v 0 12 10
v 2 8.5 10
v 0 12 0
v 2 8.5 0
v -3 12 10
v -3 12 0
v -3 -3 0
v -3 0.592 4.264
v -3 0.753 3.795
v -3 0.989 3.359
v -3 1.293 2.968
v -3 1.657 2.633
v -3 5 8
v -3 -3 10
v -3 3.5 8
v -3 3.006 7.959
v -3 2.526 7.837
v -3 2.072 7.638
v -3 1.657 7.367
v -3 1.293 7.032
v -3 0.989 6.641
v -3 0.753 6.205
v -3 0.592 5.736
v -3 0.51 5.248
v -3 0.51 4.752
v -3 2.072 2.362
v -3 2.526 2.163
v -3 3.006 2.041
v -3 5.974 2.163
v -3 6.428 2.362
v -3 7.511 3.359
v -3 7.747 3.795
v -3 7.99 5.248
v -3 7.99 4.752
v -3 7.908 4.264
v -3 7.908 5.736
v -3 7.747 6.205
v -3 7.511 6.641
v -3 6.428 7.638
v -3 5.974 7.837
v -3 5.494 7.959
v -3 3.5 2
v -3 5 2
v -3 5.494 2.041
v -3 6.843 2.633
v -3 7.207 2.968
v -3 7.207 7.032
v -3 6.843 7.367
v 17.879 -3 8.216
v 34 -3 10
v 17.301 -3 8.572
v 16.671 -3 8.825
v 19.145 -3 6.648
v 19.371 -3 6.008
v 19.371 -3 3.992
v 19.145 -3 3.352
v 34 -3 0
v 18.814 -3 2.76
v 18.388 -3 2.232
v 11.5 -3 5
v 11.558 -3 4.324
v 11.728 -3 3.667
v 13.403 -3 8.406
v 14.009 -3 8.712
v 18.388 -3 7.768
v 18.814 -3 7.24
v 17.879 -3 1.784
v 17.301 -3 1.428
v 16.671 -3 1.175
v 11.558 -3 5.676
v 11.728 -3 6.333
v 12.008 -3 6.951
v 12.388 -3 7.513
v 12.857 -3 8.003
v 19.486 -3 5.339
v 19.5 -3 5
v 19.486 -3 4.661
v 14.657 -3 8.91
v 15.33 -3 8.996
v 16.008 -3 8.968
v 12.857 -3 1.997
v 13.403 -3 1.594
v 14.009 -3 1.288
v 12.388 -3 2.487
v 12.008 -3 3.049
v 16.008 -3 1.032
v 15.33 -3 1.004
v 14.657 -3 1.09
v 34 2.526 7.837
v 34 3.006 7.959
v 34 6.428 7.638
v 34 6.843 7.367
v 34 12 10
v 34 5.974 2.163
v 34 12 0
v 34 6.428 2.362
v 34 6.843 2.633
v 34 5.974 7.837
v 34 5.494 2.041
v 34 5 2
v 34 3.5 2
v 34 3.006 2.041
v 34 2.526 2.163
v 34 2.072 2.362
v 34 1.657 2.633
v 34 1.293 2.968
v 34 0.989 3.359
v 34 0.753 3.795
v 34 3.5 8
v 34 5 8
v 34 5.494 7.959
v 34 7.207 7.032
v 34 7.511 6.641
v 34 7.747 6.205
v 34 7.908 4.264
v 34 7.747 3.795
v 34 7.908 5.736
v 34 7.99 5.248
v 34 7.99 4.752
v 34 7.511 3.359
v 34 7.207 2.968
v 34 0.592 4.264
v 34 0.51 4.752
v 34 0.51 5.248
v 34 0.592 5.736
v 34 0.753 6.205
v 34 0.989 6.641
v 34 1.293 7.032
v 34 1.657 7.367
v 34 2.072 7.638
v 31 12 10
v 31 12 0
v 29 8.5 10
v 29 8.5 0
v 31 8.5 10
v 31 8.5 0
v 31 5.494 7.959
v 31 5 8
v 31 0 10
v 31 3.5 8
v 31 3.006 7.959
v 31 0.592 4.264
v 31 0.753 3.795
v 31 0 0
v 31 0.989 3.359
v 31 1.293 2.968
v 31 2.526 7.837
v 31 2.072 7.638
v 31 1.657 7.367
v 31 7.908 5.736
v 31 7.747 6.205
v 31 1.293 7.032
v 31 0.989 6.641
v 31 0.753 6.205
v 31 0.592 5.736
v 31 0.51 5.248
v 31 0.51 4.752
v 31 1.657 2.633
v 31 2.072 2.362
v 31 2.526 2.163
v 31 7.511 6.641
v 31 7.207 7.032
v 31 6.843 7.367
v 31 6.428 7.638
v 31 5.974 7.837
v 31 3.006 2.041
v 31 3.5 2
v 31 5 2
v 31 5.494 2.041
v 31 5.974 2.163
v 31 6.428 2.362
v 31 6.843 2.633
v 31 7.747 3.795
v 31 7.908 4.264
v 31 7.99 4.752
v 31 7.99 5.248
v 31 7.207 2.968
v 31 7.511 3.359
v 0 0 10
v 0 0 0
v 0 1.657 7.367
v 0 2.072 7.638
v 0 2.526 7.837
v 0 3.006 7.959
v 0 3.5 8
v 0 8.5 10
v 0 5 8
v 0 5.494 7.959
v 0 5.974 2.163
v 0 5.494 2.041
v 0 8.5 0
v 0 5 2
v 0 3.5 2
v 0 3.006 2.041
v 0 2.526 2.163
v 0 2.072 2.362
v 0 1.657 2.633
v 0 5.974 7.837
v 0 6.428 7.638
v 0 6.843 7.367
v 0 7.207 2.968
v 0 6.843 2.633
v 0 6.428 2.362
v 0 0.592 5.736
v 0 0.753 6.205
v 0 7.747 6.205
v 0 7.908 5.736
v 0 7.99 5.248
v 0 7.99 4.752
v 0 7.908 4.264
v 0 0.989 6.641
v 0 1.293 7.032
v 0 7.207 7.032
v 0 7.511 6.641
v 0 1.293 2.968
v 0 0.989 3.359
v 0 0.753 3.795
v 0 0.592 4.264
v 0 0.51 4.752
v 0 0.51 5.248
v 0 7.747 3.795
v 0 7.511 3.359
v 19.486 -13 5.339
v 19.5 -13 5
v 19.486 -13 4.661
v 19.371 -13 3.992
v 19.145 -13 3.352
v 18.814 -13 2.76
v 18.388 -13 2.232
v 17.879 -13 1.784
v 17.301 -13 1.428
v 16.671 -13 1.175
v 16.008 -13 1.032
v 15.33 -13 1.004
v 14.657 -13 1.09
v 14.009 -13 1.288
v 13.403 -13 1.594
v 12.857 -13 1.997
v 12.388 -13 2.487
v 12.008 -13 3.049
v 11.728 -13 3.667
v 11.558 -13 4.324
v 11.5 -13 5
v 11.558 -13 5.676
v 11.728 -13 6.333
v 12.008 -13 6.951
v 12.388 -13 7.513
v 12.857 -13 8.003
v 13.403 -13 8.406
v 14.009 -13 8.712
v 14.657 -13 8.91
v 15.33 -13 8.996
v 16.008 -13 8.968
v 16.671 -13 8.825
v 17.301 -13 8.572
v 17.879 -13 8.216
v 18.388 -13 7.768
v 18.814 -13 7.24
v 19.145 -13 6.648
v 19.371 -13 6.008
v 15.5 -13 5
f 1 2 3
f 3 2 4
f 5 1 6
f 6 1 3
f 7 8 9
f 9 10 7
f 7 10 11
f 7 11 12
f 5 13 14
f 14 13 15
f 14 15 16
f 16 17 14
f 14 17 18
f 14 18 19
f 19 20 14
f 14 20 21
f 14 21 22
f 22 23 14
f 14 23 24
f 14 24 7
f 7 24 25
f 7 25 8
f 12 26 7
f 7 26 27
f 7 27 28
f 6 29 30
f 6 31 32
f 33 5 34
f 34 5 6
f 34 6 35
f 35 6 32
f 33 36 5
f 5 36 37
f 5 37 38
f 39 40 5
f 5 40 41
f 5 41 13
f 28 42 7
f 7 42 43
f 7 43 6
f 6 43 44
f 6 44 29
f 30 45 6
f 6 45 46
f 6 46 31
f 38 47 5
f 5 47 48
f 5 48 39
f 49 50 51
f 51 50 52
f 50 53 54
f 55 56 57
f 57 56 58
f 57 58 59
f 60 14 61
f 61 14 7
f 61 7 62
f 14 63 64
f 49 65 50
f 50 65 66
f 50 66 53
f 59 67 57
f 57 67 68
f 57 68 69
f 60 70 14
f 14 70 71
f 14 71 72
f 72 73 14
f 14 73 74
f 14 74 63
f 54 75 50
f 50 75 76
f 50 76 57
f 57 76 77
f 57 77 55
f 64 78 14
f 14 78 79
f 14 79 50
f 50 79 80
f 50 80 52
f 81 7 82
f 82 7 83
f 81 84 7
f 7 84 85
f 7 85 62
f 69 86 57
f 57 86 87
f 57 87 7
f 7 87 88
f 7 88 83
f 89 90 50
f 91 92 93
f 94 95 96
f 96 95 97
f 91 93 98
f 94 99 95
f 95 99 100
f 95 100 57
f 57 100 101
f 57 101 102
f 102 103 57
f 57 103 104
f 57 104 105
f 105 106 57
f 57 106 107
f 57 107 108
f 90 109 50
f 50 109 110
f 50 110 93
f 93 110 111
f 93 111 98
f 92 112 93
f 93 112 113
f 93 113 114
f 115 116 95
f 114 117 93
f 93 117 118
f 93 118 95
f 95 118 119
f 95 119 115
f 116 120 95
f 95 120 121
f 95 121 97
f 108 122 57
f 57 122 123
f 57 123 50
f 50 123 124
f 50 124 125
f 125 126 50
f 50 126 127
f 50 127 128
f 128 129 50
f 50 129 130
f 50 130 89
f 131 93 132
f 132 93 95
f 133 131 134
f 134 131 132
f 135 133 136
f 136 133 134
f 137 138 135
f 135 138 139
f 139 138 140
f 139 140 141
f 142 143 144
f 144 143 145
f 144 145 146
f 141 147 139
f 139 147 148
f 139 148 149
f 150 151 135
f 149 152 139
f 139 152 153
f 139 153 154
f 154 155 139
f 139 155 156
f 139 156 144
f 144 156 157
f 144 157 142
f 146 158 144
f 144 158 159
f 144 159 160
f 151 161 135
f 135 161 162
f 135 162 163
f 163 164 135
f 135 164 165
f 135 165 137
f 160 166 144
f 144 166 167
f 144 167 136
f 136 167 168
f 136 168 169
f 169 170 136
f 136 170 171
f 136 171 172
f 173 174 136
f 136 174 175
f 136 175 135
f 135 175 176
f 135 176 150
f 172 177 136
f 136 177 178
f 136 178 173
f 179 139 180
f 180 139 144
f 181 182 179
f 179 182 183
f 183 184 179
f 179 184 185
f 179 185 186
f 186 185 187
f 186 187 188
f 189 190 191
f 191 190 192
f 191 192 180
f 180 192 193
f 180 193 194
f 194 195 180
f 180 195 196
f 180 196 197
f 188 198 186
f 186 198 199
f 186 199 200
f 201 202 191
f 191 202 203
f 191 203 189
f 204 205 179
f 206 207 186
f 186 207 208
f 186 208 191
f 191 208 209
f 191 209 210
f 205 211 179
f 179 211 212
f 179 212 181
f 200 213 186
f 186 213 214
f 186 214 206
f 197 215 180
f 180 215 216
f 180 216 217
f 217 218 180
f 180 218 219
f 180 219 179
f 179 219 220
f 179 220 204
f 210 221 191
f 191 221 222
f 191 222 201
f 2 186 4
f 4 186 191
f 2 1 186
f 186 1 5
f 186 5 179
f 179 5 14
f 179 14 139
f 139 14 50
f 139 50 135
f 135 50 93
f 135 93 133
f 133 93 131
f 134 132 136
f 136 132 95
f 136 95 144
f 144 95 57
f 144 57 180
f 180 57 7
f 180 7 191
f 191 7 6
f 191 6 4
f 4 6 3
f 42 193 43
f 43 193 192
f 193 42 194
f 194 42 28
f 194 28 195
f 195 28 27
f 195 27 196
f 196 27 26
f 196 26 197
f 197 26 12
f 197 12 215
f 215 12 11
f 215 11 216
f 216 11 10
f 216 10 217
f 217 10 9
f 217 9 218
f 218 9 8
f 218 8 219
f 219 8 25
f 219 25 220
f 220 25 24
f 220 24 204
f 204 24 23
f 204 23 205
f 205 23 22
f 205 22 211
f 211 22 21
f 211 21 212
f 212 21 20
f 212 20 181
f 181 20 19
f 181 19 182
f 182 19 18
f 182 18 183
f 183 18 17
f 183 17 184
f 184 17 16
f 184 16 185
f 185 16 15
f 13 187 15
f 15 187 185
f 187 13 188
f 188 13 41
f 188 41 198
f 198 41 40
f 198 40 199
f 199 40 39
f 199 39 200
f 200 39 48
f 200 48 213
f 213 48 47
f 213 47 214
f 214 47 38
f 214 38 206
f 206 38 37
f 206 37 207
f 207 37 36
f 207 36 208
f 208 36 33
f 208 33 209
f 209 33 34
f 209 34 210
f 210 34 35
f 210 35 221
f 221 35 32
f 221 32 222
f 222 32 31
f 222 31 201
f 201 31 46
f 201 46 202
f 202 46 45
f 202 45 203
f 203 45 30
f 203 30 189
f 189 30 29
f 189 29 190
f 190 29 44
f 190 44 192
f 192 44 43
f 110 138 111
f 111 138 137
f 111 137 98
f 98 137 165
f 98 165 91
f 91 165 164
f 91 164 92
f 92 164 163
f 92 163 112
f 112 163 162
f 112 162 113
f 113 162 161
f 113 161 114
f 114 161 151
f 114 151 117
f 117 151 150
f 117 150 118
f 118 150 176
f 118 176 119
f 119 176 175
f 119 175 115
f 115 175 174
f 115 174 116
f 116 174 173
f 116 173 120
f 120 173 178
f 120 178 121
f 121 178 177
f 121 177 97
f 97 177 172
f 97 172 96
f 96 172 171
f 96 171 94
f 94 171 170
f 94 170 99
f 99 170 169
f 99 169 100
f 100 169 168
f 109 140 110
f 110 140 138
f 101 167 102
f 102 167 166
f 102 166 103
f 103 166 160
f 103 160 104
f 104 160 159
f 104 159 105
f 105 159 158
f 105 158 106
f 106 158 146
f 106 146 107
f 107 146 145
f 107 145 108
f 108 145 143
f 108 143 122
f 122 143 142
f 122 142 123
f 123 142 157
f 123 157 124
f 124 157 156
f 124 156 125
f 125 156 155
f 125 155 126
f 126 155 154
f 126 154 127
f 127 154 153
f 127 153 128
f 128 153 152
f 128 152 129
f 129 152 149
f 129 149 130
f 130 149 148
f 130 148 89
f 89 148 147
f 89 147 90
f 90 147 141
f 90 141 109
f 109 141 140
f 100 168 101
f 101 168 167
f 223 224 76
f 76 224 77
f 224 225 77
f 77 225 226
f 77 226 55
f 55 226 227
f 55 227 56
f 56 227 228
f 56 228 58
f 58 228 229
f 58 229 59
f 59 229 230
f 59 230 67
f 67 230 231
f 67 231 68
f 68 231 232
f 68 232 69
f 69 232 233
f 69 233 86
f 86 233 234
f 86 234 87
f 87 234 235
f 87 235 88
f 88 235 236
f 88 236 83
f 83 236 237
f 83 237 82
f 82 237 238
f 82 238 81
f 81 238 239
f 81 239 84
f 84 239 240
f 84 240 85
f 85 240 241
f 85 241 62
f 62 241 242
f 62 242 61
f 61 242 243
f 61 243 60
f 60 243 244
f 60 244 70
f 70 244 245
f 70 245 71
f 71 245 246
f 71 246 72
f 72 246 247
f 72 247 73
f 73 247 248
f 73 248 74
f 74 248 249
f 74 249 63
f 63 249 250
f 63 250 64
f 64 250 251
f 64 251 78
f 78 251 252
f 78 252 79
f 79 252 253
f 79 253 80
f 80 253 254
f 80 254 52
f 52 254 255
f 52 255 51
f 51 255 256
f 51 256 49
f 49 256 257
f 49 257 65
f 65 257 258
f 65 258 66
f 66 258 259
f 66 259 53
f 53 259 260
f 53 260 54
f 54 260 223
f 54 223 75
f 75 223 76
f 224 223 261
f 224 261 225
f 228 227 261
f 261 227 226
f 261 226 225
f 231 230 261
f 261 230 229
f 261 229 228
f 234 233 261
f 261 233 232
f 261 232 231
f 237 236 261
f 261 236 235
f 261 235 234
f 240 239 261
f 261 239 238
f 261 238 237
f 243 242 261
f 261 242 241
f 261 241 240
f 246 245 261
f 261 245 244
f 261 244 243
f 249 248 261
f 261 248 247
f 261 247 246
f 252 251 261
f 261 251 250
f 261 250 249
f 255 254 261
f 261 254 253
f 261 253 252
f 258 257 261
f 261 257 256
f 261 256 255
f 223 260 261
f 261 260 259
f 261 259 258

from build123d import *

# Parameters (mm, degrees)
BOSS_EXTRUDE1_DEPTH = 10
CUT_EXTRUDE1_DEPTH  = 41.162171256
SKETCH3_R           = 4
BOSS_EXTRUDE2_DEPTH = 10


with BuildPart() as part:
    # Sketch1 → Boss-Extrude1 (new body)
    with BuildSketch(Plane.XY):
        Polygon((0, 0), (0, 8.5), (2, 8.5), (0, 12), (-3, 12), (-3, -3), (34, -3), (34, 12), (31, 12), (29, 8.5), (31, 8.5), (31, 0), align=None)
    extrude(amount=BOSS_EXTRUDE1_DEPTH)

    # Sketch2 → Cut-Extrude1 (cut, through all)
    with BuildSketch(Plane.ZY.offset(3)):
        with BuildLine():
            Line((8, 5), (8, 3.5))
            ThreePointArc((8, 3.5), (5, 0.5), (2, 3.5))
            Line((2, 3.5), (2, 5))
            ThreePointArc((2, 5), (5, 8), (8, 5))
        make_face()
    extrude(amount=-CUT_EXTRUDE1_DEPTH, mode=Mode.SUBTRACT)

    # Sketch3 → Boss-Extrude2 (add)
    with BuildSketch(Plane.XZ.offset(3)):
        with Locations((15.5, 5)):
            Circle(SKETCH3_R)
    extrude(amount=BOSS_EXTRUDE2_DEPTH)


solid = part.part
